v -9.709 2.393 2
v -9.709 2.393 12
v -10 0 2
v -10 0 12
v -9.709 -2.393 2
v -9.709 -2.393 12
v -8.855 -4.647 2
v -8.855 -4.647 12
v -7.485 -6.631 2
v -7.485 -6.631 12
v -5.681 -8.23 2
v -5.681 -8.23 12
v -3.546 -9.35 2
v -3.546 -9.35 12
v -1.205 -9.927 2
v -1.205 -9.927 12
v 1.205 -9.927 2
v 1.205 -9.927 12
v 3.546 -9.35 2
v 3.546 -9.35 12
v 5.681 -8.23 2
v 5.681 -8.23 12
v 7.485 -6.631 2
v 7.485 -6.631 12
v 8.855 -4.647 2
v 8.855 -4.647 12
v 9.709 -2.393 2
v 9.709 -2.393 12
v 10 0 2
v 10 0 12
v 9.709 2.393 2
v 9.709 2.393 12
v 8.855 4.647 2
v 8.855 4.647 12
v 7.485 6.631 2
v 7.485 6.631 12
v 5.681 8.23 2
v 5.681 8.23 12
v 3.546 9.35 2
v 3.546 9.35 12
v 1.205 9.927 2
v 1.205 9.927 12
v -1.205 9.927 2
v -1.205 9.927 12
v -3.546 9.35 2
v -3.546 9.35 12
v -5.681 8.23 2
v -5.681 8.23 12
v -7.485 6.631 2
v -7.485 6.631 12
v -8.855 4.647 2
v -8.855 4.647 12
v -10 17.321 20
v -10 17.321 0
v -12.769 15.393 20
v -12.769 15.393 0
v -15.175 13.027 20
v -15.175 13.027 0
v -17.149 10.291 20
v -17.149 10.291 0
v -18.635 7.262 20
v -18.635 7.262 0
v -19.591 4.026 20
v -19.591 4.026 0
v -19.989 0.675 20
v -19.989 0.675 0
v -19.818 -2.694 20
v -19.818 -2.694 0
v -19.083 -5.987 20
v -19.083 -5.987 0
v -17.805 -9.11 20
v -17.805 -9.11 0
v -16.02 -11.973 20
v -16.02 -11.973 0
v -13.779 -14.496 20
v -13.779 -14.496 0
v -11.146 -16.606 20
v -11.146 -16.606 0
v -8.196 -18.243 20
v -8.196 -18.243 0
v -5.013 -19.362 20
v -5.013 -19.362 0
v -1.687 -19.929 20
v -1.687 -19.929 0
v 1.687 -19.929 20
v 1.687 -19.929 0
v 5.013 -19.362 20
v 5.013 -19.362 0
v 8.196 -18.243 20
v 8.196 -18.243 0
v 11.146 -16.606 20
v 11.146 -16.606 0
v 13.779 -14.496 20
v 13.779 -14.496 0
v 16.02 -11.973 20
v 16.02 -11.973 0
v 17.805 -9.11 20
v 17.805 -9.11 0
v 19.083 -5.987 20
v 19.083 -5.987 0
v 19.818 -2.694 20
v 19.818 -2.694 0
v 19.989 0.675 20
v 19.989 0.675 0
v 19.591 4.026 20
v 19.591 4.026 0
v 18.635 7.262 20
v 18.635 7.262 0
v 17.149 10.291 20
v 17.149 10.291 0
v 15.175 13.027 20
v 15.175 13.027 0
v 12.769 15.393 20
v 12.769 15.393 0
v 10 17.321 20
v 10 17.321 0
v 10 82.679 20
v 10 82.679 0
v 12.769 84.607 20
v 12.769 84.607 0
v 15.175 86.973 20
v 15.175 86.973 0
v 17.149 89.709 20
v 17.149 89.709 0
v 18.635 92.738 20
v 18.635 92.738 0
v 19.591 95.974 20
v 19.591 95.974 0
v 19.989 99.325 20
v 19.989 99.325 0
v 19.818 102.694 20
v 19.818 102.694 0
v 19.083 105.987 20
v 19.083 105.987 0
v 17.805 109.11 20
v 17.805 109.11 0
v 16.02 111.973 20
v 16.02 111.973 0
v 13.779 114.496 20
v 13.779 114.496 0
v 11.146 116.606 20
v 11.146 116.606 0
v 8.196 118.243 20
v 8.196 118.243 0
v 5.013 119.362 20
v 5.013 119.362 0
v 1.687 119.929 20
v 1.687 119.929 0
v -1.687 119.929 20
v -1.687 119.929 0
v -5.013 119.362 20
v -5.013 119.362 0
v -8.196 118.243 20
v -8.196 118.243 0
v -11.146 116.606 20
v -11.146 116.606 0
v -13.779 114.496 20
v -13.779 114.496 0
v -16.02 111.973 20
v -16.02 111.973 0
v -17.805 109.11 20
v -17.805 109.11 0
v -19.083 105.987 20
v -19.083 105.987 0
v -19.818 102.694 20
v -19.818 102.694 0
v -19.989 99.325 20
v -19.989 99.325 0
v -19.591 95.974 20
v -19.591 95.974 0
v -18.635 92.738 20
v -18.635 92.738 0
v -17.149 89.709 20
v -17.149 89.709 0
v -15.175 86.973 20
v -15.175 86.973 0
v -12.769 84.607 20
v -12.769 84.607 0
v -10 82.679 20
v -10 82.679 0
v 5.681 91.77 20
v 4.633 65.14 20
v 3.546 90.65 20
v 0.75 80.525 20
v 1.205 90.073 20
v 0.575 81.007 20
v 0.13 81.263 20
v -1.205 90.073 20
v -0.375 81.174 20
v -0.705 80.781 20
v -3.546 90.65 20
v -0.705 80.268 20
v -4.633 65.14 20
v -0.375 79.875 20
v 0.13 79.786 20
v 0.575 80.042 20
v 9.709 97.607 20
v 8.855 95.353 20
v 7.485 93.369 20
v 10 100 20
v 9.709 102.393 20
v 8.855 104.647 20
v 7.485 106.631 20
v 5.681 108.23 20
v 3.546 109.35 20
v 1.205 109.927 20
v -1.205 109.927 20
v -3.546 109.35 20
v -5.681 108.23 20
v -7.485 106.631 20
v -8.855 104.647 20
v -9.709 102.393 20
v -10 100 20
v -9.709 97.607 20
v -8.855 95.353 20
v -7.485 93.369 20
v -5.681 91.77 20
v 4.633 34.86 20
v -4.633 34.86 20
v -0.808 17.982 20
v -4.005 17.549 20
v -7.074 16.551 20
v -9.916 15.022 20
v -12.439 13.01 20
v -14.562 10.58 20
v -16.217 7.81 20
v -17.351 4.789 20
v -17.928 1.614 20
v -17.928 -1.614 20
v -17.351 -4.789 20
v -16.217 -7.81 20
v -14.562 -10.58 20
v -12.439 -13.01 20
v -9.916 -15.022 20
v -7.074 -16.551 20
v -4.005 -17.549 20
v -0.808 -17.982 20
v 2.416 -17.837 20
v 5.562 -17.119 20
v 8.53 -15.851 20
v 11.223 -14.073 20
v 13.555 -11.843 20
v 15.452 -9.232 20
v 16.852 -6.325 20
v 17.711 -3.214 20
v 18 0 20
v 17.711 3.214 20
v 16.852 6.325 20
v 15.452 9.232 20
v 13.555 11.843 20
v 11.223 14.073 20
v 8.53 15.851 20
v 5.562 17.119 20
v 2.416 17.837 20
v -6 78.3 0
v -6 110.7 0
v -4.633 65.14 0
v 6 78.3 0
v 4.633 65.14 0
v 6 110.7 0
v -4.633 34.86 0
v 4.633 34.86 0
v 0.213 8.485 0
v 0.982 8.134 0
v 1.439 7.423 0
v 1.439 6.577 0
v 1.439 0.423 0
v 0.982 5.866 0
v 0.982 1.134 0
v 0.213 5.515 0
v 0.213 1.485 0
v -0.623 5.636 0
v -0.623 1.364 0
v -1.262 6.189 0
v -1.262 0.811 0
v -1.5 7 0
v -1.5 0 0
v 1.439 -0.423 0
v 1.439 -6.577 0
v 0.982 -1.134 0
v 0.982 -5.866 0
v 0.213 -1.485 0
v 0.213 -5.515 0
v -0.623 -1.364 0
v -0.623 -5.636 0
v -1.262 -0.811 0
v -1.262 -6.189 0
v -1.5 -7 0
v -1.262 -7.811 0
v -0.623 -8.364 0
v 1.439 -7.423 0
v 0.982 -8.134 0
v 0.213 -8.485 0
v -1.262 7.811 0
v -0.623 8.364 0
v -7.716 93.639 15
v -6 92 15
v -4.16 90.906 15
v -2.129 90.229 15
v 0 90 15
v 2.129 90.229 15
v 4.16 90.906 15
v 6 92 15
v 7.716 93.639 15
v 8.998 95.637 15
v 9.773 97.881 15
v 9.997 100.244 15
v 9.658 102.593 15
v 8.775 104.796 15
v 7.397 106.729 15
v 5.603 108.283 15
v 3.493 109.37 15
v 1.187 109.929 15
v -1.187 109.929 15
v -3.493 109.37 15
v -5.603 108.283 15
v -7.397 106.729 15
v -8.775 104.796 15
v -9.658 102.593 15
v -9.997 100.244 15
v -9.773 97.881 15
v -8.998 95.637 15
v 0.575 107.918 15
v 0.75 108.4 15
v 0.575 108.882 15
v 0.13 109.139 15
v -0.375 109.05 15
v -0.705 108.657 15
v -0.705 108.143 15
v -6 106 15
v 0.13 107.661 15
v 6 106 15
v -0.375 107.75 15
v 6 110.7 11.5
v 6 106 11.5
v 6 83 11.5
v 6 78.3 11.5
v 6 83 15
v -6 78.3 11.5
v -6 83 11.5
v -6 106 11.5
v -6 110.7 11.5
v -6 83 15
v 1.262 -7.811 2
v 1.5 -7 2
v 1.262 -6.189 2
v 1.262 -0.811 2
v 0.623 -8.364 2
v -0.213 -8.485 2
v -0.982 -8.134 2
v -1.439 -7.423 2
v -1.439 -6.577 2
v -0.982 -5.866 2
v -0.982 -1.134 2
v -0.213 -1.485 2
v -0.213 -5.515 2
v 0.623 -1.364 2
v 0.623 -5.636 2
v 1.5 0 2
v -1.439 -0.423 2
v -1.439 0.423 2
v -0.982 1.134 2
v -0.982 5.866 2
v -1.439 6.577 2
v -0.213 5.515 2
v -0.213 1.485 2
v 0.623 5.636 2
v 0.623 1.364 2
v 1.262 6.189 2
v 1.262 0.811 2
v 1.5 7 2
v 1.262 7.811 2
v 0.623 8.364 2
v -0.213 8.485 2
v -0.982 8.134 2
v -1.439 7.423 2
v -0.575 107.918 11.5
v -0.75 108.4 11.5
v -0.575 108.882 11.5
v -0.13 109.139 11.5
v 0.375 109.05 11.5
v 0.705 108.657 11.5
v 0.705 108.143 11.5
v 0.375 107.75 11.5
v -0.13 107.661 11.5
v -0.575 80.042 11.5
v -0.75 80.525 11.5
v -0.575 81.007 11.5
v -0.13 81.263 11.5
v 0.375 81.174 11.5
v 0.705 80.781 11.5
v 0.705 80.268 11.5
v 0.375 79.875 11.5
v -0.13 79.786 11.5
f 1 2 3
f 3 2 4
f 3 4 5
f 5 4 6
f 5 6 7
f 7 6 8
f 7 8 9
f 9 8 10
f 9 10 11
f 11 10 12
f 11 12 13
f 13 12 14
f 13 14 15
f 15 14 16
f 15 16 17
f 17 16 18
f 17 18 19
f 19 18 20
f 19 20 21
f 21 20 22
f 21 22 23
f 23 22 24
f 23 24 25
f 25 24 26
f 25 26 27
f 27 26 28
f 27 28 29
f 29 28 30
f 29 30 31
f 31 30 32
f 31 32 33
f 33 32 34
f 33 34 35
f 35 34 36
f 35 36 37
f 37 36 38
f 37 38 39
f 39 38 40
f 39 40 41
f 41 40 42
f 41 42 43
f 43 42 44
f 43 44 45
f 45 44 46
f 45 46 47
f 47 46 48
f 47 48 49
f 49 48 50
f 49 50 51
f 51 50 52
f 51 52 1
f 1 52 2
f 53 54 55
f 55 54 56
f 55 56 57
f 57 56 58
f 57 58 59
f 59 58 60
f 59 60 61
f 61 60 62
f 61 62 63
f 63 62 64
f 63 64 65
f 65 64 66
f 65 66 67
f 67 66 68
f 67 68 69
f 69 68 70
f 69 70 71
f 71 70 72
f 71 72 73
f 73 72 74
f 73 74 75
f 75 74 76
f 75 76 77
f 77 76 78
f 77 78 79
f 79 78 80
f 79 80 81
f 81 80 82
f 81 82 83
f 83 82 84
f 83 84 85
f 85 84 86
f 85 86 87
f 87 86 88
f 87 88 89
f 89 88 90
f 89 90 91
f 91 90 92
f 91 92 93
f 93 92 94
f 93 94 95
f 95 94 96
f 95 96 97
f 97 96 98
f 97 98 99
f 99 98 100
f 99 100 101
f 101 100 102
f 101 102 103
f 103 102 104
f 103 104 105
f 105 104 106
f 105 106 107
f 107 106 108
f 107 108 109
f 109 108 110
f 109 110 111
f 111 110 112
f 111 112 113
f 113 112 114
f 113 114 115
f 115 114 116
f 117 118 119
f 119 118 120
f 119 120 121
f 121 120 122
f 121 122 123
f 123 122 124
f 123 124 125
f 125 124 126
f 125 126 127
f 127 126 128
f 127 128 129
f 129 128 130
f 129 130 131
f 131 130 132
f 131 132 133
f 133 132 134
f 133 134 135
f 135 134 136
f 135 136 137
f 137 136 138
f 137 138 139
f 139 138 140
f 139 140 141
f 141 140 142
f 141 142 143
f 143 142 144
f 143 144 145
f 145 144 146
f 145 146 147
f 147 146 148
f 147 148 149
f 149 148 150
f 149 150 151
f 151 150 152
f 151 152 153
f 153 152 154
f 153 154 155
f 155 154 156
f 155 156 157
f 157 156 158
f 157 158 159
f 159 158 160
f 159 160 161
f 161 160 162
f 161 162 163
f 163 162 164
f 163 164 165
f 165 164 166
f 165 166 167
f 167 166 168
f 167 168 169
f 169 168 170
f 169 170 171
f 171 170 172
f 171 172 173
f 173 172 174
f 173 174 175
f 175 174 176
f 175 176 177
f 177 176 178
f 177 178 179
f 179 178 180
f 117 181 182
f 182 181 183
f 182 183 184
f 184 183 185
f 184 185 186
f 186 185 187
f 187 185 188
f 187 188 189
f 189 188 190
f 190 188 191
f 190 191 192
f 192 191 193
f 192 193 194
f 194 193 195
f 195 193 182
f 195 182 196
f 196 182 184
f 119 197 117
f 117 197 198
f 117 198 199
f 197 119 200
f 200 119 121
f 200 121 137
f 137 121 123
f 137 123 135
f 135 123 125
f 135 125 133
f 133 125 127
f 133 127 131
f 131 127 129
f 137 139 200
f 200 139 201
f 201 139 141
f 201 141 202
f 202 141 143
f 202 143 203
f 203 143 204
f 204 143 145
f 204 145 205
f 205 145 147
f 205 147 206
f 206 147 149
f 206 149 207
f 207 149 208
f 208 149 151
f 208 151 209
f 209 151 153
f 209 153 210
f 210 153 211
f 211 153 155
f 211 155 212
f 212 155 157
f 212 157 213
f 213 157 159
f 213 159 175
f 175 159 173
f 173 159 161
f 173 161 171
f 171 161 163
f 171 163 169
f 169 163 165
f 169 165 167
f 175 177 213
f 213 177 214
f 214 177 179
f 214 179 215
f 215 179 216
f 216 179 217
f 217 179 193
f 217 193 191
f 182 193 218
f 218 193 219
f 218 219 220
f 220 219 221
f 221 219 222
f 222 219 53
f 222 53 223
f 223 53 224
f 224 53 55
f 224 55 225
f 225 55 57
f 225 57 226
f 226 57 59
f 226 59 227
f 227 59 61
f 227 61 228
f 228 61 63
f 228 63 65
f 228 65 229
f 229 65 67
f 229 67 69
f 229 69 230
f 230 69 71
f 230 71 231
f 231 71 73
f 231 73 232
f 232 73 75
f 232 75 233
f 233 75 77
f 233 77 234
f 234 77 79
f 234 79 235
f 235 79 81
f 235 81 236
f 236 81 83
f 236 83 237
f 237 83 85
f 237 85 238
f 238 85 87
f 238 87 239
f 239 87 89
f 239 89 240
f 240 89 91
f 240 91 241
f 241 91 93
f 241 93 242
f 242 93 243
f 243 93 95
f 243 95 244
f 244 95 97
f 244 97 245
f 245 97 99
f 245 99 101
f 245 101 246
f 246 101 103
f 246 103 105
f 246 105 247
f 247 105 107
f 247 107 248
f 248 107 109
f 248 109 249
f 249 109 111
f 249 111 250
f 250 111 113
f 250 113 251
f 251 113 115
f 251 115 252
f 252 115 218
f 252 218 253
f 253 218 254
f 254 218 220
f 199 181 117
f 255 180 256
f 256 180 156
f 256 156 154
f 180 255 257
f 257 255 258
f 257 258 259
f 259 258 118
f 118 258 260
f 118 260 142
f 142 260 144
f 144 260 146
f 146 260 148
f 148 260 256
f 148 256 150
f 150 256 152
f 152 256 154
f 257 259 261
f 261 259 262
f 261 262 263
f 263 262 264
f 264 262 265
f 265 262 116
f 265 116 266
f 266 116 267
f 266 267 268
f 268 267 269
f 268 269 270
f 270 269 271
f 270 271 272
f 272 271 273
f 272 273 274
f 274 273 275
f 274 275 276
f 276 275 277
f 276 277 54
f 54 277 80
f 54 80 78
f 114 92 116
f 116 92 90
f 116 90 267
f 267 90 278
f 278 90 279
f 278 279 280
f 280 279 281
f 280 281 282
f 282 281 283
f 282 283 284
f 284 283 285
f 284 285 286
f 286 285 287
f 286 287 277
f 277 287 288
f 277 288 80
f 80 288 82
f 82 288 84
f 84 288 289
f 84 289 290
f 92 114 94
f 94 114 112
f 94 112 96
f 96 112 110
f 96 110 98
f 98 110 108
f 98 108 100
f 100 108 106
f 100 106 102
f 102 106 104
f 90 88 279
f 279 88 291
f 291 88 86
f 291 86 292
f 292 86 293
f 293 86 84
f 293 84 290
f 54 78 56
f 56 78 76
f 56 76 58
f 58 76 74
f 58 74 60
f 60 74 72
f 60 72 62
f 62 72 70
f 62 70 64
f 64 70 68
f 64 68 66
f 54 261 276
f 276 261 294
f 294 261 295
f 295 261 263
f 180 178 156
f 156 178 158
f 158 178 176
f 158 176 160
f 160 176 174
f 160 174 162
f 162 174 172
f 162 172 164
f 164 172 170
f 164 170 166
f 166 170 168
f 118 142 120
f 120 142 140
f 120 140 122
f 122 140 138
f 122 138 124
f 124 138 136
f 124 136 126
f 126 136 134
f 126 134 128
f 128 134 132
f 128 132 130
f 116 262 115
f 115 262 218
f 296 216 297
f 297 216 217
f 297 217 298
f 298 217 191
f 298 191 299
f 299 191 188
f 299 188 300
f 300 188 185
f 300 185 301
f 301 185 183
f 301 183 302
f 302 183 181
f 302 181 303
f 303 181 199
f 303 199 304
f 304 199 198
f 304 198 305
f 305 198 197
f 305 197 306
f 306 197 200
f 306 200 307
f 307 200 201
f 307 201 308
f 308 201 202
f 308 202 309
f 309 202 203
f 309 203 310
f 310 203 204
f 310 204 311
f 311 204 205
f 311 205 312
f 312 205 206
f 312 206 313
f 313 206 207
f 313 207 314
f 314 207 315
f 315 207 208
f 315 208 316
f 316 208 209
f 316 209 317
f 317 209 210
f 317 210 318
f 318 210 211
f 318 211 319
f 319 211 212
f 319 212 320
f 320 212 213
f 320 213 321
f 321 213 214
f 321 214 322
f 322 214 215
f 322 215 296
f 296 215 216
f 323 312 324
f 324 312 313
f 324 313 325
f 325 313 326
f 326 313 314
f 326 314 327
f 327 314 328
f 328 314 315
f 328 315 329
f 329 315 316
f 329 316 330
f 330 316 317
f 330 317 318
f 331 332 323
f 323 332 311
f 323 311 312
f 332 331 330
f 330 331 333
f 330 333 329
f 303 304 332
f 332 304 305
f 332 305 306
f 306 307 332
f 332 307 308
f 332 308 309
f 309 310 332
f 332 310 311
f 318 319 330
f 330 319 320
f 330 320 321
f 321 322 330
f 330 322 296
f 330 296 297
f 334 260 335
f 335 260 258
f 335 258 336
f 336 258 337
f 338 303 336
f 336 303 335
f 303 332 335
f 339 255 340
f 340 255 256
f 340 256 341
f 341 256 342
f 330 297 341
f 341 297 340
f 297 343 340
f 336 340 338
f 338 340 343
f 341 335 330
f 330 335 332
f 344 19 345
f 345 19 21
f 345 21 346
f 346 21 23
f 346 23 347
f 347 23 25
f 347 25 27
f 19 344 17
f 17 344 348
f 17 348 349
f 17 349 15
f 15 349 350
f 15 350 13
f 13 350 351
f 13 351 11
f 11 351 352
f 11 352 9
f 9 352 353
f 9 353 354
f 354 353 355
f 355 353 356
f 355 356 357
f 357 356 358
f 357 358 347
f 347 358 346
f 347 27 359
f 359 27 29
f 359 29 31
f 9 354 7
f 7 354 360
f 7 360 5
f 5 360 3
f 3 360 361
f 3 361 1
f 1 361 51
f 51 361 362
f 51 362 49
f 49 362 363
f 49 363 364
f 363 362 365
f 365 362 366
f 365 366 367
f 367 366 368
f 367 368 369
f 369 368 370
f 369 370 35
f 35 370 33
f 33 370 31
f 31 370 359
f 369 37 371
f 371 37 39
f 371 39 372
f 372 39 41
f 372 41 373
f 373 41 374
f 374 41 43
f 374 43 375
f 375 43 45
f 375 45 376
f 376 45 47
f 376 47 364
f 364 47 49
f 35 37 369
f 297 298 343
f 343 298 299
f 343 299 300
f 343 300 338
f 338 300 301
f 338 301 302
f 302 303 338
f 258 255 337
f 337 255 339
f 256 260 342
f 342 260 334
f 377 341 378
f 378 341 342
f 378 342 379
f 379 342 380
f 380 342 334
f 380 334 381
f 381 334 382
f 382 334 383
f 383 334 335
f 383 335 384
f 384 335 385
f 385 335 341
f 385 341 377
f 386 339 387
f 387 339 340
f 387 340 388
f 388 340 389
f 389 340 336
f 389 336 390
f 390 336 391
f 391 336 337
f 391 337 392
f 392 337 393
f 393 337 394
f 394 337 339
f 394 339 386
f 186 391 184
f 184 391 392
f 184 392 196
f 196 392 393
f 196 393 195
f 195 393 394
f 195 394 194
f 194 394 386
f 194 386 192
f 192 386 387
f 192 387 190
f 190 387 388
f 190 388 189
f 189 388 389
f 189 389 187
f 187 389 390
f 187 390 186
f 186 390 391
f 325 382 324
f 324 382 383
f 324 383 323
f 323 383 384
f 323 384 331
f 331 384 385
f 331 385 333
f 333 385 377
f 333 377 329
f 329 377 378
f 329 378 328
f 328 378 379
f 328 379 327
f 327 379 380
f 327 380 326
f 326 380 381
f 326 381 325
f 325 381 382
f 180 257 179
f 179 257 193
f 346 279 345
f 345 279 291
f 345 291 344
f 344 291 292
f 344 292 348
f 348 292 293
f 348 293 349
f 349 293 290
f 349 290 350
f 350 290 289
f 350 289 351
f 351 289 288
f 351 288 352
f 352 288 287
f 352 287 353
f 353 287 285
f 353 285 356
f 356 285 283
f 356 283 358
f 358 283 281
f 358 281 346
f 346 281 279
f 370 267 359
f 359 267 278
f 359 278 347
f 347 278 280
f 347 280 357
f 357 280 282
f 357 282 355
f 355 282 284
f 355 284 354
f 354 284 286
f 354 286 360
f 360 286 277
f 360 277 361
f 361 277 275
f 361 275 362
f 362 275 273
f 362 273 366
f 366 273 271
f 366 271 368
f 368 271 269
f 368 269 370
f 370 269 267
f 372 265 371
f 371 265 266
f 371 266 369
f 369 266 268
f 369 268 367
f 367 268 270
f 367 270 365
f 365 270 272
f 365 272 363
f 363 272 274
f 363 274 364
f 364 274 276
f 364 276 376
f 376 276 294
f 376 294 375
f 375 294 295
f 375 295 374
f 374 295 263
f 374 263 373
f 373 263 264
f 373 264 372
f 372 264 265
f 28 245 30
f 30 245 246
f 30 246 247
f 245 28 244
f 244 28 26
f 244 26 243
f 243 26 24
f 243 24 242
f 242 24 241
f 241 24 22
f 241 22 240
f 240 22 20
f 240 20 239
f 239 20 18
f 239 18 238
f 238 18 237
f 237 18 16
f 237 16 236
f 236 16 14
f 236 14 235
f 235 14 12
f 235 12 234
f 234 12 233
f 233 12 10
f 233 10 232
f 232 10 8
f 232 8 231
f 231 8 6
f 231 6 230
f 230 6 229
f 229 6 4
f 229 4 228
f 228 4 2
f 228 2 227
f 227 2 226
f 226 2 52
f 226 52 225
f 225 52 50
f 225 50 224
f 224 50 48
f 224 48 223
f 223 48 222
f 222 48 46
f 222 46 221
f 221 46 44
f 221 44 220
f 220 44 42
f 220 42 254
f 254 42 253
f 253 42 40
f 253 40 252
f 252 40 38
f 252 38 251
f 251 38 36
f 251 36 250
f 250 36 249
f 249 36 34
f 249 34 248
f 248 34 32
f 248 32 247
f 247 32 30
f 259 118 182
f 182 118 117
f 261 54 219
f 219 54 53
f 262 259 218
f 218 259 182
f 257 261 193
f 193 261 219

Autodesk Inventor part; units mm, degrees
ref_plane "YZ Plane" through (0, 0, 0) normal (1, 0, 0) x (0, 1, 0)
ref_plane "XZ Plane" through (0, 0, 0) normal (0, 1, 0) x (-1, 0, 0)
ref_plane "XY Plane" through (0, 0, 0) normal (0, 0, 1) x (1, 0, 0)
sketch "Sketch1" plane through (0, 0, 0) normal (0, 0, 1) x (1, 0, 0)
  circle A0 centre (0, 0) radius 10
  circle A1 centre (0, 0) radius 30
  line L0 (0, 0) -> (10, 0)
  line L1 (10, 0) -> (10, 100)
  line L2 (10, 100) -> (0, 100)
  line L3 (0, 100) -> (0, 0)
  line L4 (0, 100) -> (-10, 100)
  line L5 (-10, 100) -> (-10, 0)
  line L6 (-10, 0) -> (0, 0)
  line L7 (0, 0) -> (0, 100)
  circle A2 centre (0, 100) radius 30
  circle A3 centre (0, 100) radius 10
  circle A4 centre (0, 0) radius 20
  circle A5 centre (0, 100) radius 20
  point P0 (10, 17.3205)
  point P1 (10, 82.6795)
  point P2 (-10, 82.6795)
  point P3 (-10, 17.3205)
  dimension "d0" = 20
  dimension "d1" = 60
  dimension "d2" = 10
  dimension "d3" = 100
  dimension "d4" = 60
  dimension "d5" = 40
  dimension "d6" = 40
extrude "Extrusion1" add sketch "Sketch1" along normal blind 20 contours L5 A4 L3 A0 | A0 L1 A4 L5 | A0 L3 A4 L1 | L5 A1 L3 A4 | A4 L3 A1 L1 | L5 A2 L3 A1 | A1 L3 A2 L1 | L5 A5 L3 A2 | A2 L3 A5 L1 | A5 L1 A3 L5 | L5 A3 L3 A5 | A5 L3 A3 L1 | A3 L2 L4 | L4 L3 A3 | A3 L3 L2
sketch "Sketch2" plane through (0, 0, 20) normal (0, 0, 1) x (1, 0, 0)
  circle A0 centre (0, 100) radius 10
  point P0 (0, 0)
  dimension "d9" = 20
extrude "Extrusion2" cut sketch "Sketch2" against normal blind 5
sketch "Sketch3" plane through (0, 0, 0) normal (0, 0, -1) x (-1, 0, 0)
  line L0 (0, 100) -> (6, 100)
  line L1 (6, 100) -> (6, 83)
  line L2 (6, 83) -> (0, 83)
  line L3 (0, 83) -> (0, 100)
  line L4 (0, 100) -> (-6, 100)
  line L5 (-6, 100) -> (-6, 83)
  line L6 (-6, 83) -> (0, 83)
  line L7 (0, 83) -> (0, 100)
  line L8 (6, 100) -> (-6, 100)
  line L9 (-6, 100) -> (-6, 106)
  line L10 (-6, 106) -> (6, 106)
  line L11 (6, 106) -> (6, 100)
  point P0 (0, 0)
  dimension "d12" = 6
  dimension "d13" = 17
  dimension "d14" = 6
  dimension "d15" = 6
extrude "Extrusion3" cut sketch "Sketch3" against normal blind 15
sketch "Sketch4" plane through (0, 0, 0) normal (0, 0, -1) x (-1, 0, 0)
  line L0 (6, 83) -> (-6, 83)
  line L1 (-6, 83) -> (-6, 78.3)
  line L2 (-6, 78.3) -> (6, 78.3)
  line L3 (6, 78.3) -> (6, 83)
  line L4 (6, 106) -> (-6, 106) projected
  line L5 (6, 106) -> (-6, 106)
  line L6 (-6, 106) -> (-6, 110.7)
  line L7 (-6, 110.7) -> (6, 110.7)
  line L8 (6, 110.7) -> (6, 106)
  point P0 (0, 0)
  dimension "d18" = 12
  dimension "d19" = 4.7
  dimension "d20" = 4.7
extrude "Extrusion4" cut sketch "Sketch4" against normal blind 11.5
sketch "Sketch5" plane through (0, 0, 11.5) normal (0, 0, -1) x (-1, 0, 0)
  line L0 (6, 110.7) -> (6, 78.3) projected
  line L1 (-6, 78.3) -> (-6, 110.7) projected
  line L2 (6, 110.7) -> (-6, 110.7)
  line L3 (-6, 110.7) -> (-6, 108.4)
  line L4 (-6, 108.4) -> (6, 108.4)
  line L5 (6, 108.4) -> (6, 110.7)
  line L6 (6, 78.2245) -> (-6, 78.2245)
  line L7 (-6, 78.2245) -> (-6, 80.5245)
  line L8 (-6, 80.5245) -> (6, 80.5245)
  line L9 (6, 80.5245) -> (6, 78.2245)
  circle A0 centre (0, 108.4) radius 0.75
  circle A1 centre (0, 80.5245) radius 0.75
  point P0 (0, 0)
  dimension "d23" = 2.3
  dimension "d24" = 2.3
  dimension "d25" = 1.5
  dimension "d26" = 1.5
extrude "Extrusion5" cut sketch "Sketch5" against normal blind 48.975 contours A0 L4 | L4 A0 | A1 L8 | L8 A1
sketch "Sketch6" plane through (0, 0, 0) normal (0, 0, -1) x (-1, 0, 0)
  circle A0 centre (0, 0) radius 10
extrude "Extrusion6" add sketch "Sketch6" against normal blind 2
sketch "Sketch7" plane through (0, 0, 0) normal (0, 0, -1) x (-1, 0, 0)
  circle A0 centre (0, 0) radius 1.5
  circle A1 centre (0, 7) radius 1.5
  circle A2 centre (0, -7) radius 1.5
  dimension "d31" = 3
  dimension "d32" = 3
  dimension "d33" = 3
extrude "Extrusion7" cut sketch "Sketch7" against normal blind 10.7
chamfer "Chamfer1" distance 8 angle 45 1 edges at (-10, 0, 20)
sketch "Sketch8" plane through (0, 0, 20) normal (0, 0, 1) x (1, 0, 0)
  line L0 (-10, 82.6795) -> (-10, 17.3205) projected
  line L1 (10, 17.3205) -> (10, 82.6795) projected
  line L2 (-10, 82.6795) -> (10, 17.3205)
  line L3 (10, 17.3205) -> (10, 82.6795)
  arc A0 (-10, 17.3205) -> (10, 17.3205) centre (0, 0) ccw projected
  line L4 (10, 82.6795) -> (-10, 17.3205)
  line L5 (-10, 17.3205) -> (-10, 82.6795)
  line L6 (0, 50) -> (4.6328, 50)
  line L7 (4.6328, 50) -> (4.6328, 65.1396)
  line L8 (4.6328, 65.1396) -> (0, 65.1396)
  line L9 (0, 65.1396) -> (0, 50)
  line L10 (0, 50) -> (4.6328, 50)
  line L11 (4.6328, 50) -> (4.6328, 34.8604)
  line L12 (4.6328, 34.8604) -> (0, 34.8604)
  line L13 (0, 34.8604) -> (0, 50)
  line L14 (4.6328, 34.8604) -> (-4.6328, 34.8604)
  line L15 (-4.6328, 34.8604) -> (-4.6328, 65.1396)
  line L16 (-4.6328, 65.1396) -> (4.6328, 65.1396)
  line L17 (4.6328, 65.1396) -> (4.6328, 34.8604)
extrude "Extrusion8" cut sketch "Sketch8" against normal blind 38.5125 contours L2 L15 L4 L0 | L2 L11 L7 L4 L1
properties part number "2nd arm"
